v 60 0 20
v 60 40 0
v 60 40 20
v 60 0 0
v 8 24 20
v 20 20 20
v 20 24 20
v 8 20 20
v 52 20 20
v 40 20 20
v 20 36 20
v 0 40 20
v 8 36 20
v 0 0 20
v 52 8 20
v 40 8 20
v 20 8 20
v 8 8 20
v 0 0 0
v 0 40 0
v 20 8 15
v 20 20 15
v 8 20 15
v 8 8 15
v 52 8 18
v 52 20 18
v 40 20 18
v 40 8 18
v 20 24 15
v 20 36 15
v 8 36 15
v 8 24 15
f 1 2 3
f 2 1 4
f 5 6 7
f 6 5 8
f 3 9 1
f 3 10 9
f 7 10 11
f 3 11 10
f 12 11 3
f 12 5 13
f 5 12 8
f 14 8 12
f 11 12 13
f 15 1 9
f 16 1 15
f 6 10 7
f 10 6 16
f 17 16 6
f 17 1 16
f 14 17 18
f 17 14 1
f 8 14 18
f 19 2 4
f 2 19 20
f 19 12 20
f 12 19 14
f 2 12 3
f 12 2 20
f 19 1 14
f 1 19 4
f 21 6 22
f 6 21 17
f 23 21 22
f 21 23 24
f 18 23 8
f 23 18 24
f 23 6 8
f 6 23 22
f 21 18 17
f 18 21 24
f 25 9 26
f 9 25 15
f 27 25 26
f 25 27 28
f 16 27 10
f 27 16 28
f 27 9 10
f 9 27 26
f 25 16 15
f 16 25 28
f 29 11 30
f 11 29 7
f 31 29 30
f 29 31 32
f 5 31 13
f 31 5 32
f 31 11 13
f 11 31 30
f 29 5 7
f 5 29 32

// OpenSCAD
$fn=96;
selected_pocket_depth=5;
difference(){cube([60,40,20]); translate([8,8,20-selected_pocket_depth]) cube([12,12,selected_pocket_depth+1]); translate([40,8,18]) cube([12,12,3]); translate([8,24,15]) cube([12,12,6]);}
